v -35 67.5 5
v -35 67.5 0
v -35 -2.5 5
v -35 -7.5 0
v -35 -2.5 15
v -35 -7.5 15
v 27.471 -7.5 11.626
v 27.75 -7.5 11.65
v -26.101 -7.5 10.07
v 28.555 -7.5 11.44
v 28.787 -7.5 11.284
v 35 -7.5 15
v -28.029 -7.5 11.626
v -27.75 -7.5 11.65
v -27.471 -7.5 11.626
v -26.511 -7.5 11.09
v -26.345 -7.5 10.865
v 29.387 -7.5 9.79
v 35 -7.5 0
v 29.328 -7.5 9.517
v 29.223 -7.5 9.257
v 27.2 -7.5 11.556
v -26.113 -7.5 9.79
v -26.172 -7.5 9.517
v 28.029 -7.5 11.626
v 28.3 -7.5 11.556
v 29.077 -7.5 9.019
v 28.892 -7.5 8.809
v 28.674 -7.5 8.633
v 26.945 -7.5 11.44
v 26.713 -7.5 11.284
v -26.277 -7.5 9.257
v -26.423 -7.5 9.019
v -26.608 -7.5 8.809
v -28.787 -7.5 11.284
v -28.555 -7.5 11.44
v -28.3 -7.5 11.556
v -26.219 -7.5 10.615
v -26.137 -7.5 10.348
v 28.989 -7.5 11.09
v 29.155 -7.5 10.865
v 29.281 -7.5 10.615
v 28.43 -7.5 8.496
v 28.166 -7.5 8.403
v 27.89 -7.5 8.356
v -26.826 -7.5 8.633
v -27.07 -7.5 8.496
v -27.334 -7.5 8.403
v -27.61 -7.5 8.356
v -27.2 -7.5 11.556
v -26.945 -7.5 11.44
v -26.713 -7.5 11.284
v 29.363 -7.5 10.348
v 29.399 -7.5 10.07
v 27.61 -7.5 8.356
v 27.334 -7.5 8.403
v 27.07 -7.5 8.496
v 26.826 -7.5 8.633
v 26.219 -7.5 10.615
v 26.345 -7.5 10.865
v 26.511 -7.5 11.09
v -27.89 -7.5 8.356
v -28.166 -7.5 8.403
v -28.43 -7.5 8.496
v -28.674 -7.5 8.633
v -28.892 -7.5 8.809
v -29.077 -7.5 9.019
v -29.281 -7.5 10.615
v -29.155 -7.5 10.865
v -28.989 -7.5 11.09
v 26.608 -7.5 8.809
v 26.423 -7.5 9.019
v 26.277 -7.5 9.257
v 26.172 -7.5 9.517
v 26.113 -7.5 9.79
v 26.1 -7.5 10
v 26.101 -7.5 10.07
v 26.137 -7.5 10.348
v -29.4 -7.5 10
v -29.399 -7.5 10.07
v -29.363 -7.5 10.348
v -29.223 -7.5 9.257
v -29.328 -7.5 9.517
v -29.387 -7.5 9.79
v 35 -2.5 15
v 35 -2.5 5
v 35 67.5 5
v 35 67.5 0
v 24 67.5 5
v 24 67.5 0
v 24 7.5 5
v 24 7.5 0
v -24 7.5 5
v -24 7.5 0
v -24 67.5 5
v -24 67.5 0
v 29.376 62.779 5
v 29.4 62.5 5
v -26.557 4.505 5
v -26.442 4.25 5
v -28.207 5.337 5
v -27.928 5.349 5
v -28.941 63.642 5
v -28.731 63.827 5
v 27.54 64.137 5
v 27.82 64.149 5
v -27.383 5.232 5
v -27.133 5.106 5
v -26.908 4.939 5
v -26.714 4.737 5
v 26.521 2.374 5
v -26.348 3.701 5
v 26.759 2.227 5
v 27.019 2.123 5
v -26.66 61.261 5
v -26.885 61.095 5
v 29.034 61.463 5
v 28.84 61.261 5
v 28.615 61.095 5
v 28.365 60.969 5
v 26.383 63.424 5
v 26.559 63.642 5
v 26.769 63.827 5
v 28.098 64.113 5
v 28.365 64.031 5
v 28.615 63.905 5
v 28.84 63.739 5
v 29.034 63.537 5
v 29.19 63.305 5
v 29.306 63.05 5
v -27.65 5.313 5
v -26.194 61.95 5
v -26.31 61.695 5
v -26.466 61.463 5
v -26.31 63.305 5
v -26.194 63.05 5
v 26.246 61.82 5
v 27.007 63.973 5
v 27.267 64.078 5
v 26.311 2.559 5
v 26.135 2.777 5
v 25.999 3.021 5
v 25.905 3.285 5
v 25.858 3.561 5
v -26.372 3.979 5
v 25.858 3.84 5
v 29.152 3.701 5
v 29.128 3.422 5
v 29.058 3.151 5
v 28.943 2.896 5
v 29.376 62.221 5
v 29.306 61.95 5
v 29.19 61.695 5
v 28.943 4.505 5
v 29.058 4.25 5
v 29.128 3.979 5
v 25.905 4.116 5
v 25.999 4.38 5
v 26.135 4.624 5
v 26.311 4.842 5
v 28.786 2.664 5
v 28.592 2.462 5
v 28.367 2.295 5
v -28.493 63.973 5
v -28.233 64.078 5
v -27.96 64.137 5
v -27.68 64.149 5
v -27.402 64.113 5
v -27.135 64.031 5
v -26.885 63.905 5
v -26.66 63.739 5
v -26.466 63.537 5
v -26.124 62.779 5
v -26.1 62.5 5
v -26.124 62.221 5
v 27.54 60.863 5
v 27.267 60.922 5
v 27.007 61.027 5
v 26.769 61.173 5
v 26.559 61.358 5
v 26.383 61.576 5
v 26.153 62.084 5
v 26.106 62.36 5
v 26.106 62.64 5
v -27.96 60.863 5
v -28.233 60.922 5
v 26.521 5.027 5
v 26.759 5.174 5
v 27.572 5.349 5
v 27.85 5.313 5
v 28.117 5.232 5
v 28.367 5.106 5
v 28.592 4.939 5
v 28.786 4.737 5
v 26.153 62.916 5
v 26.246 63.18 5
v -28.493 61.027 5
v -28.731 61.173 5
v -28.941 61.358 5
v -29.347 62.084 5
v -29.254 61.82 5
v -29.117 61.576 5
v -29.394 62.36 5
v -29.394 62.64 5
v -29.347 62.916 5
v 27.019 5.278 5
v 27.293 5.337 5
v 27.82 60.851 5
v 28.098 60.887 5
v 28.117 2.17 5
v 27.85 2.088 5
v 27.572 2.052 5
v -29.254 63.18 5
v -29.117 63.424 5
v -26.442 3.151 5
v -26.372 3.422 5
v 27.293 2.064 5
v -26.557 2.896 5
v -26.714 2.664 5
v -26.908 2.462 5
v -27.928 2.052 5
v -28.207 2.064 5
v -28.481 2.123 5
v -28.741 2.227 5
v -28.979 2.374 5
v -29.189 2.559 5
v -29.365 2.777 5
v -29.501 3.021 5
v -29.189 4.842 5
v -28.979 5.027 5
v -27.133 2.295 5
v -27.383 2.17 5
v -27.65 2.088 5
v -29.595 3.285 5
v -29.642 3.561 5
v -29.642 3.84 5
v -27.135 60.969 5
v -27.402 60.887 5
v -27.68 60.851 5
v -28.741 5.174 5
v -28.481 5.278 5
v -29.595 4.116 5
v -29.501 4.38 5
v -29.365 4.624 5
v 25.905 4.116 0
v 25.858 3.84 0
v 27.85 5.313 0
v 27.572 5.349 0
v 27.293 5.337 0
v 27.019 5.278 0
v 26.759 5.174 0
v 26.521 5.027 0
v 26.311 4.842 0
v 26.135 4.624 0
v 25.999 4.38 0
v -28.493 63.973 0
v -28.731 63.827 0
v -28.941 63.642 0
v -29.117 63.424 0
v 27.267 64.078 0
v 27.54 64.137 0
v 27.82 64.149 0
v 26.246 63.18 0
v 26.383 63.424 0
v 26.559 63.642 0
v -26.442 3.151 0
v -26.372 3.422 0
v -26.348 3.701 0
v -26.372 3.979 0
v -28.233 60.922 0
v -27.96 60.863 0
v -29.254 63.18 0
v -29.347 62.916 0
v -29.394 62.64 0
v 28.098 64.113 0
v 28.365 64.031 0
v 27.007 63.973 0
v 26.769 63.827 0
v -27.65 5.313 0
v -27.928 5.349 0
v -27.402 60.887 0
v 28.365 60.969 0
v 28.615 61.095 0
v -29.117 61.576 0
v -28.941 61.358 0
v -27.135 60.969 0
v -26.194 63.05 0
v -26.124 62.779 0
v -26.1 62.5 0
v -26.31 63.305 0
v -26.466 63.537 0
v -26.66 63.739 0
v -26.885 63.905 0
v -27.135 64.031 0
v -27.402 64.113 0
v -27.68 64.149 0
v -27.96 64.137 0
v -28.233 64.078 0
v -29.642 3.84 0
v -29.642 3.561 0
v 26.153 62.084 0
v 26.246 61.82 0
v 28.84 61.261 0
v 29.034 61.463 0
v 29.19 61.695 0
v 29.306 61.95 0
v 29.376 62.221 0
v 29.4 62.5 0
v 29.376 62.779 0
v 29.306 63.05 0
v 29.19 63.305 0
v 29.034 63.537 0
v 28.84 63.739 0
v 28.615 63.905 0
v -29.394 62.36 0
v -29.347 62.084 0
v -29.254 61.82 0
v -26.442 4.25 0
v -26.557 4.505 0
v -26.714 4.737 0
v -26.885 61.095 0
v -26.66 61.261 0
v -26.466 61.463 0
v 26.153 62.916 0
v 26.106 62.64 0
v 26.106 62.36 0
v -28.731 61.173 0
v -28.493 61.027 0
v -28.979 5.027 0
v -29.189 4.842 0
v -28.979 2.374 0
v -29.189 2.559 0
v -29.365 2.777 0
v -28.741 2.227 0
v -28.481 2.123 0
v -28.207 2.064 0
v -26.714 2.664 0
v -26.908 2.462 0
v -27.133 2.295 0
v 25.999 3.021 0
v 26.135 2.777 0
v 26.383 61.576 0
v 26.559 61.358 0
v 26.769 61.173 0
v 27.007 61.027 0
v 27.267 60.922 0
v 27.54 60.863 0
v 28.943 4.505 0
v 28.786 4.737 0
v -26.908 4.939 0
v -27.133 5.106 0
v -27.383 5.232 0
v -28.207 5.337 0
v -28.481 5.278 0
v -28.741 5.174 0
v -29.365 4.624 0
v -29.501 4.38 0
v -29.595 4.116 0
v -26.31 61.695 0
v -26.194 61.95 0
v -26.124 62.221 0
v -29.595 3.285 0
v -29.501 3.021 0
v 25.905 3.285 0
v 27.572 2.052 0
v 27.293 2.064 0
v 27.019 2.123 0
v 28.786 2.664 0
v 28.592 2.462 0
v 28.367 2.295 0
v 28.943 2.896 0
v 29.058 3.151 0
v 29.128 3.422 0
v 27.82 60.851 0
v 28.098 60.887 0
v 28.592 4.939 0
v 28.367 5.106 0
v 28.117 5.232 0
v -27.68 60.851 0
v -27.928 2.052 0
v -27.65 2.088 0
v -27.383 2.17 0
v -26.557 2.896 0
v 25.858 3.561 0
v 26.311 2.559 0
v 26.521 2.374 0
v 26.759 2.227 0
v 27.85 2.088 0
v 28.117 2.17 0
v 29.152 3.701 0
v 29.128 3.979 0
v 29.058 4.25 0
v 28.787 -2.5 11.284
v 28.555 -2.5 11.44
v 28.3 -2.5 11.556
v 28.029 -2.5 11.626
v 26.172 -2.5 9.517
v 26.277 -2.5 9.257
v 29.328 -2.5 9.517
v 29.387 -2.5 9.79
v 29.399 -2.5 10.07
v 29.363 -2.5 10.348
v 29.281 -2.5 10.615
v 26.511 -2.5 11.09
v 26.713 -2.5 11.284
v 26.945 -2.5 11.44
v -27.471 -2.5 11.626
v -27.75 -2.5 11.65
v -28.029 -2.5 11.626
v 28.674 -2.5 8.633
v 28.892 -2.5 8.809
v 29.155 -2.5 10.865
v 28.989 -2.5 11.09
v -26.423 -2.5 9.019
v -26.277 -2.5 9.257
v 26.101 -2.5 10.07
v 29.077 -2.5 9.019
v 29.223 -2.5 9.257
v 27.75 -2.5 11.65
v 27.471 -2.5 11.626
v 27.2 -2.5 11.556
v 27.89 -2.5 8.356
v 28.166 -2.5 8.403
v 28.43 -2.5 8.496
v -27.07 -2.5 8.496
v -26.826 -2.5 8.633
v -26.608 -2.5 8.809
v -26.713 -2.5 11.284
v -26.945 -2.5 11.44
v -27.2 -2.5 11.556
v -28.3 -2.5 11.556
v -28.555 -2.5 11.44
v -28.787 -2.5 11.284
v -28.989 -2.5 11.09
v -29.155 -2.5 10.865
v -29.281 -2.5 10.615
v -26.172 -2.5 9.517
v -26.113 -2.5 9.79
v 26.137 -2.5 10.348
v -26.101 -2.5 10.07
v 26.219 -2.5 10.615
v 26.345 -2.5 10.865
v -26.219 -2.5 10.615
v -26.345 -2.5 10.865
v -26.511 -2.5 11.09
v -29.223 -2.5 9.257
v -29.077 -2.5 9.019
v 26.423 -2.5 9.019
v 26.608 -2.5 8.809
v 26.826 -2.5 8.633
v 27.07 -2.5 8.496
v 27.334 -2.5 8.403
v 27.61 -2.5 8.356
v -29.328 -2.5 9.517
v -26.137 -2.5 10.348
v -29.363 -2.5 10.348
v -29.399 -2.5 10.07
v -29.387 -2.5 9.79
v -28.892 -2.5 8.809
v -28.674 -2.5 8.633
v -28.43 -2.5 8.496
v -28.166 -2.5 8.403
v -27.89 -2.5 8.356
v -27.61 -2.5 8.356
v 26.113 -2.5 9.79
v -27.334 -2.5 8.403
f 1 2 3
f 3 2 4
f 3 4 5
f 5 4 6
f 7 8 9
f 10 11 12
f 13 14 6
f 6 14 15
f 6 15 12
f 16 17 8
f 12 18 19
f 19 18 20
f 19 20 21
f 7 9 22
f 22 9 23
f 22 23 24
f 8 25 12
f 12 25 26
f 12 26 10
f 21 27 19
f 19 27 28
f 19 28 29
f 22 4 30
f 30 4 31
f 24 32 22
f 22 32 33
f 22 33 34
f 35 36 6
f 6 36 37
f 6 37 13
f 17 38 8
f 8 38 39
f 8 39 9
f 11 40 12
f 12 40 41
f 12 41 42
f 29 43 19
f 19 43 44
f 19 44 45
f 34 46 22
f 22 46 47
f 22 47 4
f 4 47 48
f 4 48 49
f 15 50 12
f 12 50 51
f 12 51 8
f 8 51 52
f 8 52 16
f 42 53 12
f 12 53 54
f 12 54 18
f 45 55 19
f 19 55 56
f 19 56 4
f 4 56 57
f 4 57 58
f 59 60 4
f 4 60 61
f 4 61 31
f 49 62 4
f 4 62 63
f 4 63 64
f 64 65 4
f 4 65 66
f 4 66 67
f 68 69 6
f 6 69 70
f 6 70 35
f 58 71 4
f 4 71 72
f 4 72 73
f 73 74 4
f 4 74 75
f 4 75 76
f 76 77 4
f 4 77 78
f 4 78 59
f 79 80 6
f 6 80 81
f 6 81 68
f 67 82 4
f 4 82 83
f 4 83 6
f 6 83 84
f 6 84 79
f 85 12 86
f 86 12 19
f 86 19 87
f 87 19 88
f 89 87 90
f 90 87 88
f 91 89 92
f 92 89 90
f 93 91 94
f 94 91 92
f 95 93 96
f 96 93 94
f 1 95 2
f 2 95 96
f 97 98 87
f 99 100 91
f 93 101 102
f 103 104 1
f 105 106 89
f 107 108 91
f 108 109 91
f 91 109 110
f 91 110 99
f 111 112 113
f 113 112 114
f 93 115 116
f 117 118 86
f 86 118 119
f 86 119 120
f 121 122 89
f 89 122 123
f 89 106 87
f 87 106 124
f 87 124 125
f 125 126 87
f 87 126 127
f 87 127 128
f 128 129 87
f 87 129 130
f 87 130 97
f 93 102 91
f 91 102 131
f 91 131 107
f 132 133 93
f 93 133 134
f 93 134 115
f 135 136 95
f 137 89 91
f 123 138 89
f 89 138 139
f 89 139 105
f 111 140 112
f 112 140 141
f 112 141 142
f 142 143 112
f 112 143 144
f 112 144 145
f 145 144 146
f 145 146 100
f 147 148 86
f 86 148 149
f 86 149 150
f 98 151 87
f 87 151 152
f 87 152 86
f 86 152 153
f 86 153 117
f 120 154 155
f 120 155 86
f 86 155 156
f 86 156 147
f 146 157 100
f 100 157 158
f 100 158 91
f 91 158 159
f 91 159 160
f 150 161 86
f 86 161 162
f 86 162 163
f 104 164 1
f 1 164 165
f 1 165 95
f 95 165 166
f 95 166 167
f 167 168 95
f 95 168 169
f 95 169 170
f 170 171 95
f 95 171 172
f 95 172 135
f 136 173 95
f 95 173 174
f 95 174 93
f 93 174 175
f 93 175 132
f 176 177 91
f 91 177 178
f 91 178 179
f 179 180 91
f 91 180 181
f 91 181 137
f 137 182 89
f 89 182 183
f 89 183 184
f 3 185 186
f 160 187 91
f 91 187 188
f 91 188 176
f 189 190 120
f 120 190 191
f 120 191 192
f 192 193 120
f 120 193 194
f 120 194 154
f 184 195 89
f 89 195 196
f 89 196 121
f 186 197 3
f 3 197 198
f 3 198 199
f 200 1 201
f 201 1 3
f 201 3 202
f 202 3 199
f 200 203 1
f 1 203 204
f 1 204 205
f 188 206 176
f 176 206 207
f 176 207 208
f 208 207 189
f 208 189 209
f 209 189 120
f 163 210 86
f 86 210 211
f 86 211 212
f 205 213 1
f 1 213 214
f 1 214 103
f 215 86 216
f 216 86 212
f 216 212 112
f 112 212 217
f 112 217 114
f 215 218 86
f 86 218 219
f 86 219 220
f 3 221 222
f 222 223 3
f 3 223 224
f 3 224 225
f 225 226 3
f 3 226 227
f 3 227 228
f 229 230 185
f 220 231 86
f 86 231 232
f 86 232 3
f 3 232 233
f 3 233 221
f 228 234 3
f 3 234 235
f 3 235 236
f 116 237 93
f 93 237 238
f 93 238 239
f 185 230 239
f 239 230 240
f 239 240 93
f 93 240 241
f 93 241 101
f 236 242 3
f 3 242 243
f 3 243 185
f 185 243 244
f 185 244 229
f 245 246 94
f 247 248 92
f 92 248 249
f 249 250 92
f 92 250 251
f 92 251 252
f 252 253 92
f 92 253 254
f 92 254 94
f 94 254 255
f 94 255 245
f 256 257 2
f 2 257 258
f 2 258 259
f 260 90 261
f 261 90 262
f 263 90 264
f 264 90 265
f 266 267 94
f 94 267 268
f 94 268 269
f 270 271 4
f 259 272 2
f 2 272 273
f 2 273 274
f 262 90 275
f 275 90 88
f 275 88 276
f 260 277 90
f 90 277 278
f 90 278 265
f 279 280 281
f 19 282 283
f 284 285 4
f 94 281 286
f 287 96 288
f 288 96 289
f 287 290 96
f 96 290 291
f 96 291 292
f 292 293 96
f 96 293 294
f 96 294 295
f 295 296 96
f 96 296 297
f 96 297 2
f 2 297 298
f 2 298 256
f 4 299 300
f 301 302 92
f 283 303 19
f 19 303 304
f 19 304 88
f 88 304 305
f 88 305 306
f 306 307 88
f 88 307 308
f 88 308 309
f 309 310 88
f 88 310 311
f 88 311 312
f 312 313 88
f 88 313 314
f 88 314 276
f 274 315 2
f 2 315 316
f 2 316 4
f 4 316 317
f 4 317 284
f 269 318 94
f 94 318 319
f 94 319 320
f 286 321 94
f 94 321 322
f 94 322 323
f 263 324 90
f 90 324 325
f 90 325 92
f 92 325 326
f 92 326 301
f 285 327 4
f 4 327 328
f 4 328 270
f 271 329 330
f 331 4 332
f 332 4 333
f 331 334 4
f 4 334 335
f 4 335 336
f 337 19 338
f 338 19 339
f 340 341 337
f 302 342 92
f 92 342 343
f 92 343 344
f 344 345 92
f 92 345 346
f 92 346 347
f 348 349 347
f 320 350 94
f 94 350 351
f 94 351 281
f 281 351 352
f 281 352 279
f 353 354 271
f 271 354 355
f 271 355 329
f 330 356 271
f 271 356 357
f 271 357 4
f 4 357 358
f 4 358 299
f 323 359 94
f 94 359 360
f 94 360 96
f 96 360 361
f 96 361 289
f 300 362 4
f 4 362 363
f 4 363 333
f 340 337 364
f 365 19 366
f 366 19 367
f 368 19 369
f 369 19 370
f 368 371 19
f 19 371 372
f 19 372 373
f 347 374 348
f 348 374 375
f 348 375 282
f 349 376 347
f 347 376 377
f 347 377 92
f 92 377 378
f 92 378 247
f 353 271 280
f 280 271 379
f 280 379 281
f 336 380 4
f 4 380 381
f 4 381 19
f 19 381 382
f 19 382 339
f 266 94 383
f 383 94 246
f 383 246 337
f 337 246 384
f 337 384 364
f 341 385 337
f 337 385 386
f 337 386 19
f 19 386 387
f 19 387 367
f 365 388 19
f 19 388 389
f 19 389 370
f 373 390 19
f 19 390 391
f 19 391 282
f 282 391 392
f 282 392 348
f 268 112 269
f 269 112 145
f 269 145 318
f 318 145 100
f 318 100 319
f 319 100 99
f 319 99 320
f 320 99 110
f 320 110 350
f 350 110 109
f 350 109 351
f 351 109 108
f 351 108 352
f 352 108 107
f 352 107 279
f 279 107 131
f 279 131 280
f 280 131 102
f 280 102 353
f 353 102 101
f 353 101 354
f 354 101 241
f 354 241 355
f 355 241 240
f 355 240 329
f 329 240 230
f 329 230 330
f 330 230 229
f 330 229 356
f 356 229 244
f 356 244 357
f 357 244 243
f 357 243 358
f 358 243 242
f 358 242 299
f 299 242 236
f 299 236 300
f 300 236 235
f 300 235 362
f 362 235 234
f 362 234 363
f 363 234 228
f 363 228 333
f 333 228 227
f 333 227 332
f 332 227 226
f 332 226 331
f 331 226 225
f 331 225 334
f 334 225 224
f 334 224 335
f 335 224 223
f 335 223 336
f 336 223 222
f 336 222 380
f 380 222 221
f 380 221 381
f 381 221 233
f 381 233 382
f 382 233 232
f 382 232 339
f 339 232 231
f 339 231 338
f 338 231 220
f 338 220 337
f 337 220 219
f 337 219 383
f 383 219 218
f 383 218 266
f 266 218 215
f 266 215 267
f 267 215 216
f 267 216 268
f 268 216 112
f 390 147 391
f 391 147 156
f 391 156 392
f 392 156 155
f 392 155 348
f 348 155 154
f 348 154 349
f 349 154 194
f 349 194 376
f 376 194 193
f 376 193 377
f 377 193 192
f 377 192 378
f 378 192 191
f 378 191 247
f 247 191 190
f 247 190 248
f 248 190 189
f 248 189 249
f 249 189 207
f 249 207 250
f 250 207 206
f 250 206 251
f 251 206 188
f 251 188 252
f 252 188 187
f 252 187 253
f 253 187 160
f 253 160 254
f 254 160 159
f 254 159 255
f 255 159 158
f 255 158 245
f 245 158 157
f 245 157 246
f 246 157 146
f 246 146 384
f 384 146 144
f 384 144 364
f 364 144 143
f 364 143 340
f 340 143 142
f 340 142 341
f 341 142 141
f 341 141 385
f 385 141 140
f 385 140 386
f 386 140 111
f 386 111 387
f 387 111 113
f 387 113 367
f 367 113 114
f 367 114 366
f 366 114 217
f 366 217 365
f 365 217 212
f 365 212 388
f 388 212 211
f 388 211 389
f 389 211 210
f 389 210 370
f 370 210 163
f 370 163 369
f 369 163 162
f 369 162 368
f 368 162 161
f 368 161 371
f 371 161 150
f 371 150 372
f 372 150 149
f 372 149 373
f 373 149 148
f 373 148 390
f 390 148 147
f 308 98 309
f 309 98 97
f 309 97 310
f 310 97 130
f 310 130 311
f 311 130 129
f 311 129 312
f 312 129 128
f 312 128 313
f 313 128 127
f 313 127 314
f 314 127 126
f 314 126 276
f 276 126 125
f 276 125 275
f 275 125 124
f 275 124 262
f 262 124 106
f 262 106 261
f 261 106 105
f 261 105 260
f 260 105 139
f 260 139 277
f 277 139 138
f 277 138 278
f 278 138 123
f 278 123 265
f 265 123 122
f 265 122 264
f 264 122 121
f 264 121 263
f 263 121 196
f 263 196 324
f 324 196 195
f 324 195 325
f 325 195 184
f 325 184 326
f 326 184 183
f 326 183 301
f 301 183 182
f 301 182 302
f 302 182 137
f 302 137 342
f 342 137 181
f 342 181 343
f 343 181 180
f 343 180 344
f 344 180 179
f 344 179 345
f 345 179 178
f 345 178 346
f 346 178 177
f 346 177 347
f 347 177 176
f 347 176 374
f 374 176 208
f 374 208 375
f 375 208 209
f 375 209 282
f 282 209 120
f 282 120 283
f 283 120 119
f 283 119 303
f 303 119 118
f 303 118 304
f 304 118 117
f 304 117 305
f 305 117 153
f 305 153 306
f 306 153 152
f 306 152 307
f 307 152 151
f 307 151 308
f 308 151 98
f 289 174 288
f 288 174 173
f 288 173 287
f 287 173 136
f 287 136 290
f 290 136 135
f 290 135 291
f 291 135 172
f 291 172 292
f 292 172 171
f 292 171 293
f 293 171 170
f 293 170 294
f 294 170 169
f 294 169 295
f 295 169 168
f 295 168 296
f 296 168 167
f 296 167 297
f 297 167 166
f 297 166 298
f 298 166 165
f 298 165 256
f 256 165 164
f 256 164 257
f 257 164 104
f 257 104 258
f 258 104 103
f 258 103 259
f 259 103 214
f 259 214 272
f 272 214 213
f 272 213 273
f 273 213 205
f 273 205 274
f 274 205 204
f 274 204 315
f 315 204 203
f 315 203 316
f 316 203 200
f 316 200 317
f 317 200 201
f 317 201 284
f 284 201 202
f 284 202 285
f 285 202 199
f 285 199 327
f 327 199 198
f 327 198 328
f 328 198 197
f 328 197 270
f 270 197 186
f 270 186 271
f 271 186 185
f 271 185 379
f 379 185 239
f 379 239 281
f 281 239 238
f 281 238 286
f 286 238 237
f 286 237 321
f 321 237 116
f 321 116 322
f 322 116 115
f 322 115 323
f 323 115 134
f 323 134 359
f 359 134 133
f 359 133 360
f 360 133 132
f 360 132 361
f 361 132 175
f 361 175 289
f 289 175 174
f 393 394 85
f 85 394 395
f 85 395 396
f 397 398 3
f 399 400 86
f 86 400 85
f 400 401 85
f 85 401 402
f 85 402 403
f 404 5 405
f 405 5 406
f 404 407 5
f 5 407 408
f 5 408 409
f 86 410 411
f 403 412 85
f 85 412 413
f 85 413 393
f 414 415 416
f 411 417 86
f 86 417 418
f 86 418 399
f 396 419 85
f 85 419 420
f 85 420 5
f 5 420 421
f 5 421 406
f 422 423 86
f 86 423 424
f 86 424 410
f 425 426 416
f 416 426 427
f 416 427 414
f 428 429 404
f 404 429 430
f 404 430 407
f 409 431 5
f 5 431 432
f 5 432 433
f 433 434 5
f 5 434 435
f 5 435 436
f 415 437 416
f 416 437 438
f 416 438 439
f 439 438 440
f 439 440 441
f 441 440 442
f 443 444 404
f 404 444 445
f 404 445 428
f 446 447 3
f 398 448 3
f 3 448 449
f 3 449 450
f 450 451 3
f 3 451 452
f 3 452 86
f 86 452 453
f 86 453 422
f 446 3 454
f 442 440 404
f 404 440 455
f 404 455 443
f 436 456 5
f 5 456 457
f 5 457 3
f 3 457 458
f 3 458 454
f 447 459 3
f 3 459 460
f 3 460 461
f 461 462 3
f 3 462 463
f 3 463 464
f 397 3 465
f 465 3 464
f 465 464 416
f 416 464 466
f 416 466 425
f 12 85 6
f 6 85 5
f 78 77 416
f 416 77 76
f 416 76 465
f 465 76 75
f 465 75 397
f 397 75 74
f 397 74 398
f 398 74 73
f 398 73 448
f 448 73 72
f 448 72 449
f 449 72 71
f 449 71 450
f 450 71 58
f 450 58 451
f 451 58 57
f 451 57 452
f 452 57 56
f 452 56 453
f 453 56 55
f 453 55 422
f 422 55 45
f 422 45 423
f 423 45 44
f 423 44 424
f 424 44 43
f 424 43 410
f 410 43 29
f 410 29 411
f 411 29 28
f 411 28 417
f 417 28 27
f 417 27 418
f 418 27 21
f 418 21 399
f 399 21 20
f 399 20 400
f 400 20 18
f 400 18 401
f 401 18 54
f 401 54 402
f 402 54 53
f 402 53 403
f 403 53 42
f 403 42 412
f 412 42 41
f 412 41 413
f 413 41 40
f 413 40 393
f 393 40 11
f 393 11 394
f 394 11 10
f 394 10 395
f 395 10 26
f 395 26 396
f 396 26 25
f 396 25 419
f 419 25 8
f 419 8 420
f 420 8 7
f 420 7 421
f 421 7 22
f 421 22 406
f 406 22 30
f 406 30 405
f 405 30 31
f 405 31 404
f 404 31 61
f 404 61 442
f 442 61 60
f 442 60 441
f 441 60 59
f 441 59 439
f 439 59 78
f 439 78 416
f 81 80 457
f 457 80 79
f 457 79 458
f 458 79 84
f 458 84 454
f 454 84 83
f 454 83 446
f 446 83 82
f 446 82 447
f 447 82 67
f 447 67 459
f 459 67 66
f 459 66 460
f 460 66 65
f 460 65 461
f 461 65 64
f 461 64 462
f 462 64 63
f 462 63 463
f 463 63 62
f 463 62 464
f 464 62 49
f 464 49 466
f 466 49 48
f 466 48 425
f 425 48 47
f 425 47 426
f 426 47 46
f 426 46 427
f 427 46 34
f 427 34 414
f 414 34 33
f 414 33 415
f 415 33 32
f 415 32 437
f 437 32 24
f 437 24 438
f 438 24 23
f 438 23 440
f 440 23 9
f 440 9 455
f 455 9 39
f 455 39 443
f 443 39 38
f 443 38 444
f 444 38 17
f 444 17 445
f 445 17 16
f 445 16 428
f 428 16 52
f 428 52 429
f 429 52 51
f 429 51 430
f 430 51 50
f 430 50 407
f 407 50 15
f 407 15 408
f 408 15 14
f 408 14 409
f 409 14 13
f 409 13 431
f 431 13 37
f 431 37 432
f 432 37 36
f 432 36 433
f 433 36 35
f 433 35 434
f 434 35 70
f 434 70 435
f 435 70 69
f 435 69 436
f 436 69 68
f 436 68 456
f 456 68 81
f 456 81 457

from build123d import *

# Parameters (mm, degrees)
SKIZZE1_W                       = 11
SKIZZE1_H                       = 60
SKIZZE1_H_2                     = 15
SKIZZE1_W_2                     = 48
AUFSATZ_LINEAR_AUSTRAGEN1_DEPTH = 5
SKIZZE2_R                       = 1.65
SCHNITT_LINEAR_AUSTRAGEN1_DEPTH = 5
SKIZZE6_W                       = 70
SKIZZE6_H                       = 5
AUFSATZ_LINEAR_AUSTRAGEN3_DEPTH = 10
SKIZZE7_R                       = 1.65
SCHNITT_LINEAR_AUSTRAGEN2_DEPTH = 10


with BuildPart() as part:
    # Skizze1 → Aufsatz-Linear austragen1 (new body)
    with BuildSketch(Plane.XY):
        with Locations((-29.5, 37.5)):
            Rectangle(SKIZZE1_W, SKIZZE1_H)
        with Locations((-29.5, 0)):
            Rectangle(SKIZZE1_W, SKIZZE1_H_2)
        Rectangle(SKIZZE1_W_2, SKIZZE1_H_2)
        with Locations((29.5, 0)):
            Rectangle(SKIZZE1_W, SKIZZE1_H_2)
        with Locations((29.5, 37.5)):
            Rectangle(SKIZZE1_W, SKIZZE1_H)
    extrude(amount=AUFSATZ_LINEAR_AUSTRAGEN1_DEPTH)

    # Skizze2 → Schnitt-Linear austragen1 (cut)
    with BuildSketch(Plane.XY.offset(5)):
        with Locations((-27.997843094, 3.700522334)):
            Circle(SKIZZE2_R)
        with Locations((27.502156906, 3.700522334)):
            Circle(SKIZZE2_R)
        with Locations((27.75, 62.5)):
            Circle(SKIZZE2_R)
        with Locations((-27.75, 62.5)):
            Circle(SKIZZE2_R)
    extrude(amount=-SCHNITT_LINEAR_AUSTRAGEN1_DEPTH, mode=Mode.SUBTRACT)

    # Skizze6 → Aufsatz-Linear austragen3 (add)
    with BuildSketch(Plane.XY.offset(5)):
        with Locations((0, -5)):
            Rectangle(SKIZZE6_W, SKIZZE6_H)
    extrude(amount=AUFSATZ_LINEAR_AUSTRAGEN3_DEPTH)

    # Skizze7 → Schnitt-Linear austragen2 (cut)
    with BuildSketch(Plane(origin=(0, -2.5, 0), x_dir=(1, 0, 0), z_dir=(0, 1, 0))):
        with Locations((-27.75, -10)):
            Circle(SKIZZE7_R)
        with Locations((27.75, -10)):
            Circle(SKIZZE7_R)
    extrude(amount=-SCHNITT_LINEAR_AUSTRAGEN2_DEPTH, mode=Mode.SUBTRACT)


solid = part.part
